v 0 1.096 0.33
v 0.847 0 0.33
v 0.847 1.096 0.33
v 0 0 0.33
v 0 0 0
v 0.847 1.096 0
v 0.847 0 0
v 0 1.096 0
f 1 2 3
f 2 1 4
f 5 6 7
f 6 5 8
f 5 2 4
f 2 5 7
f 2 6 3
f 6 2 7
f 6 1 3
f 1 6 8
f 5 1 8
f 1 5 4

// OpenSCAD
/* Warning, this is a very basic generator with a lot of approximation 
input data : [WLCSP, EJB, 0.847x1.096x0.330mm, 5, , A, C04-21208A]
generated by com.zoubworld.electronics.cad.model3d.Basic
Date : Sun Feb 15 10:50:49 CET 2026
*/

//body
color("black")
translate([0,0,0])
cube([0.847,1.096,0.33], center=false);
